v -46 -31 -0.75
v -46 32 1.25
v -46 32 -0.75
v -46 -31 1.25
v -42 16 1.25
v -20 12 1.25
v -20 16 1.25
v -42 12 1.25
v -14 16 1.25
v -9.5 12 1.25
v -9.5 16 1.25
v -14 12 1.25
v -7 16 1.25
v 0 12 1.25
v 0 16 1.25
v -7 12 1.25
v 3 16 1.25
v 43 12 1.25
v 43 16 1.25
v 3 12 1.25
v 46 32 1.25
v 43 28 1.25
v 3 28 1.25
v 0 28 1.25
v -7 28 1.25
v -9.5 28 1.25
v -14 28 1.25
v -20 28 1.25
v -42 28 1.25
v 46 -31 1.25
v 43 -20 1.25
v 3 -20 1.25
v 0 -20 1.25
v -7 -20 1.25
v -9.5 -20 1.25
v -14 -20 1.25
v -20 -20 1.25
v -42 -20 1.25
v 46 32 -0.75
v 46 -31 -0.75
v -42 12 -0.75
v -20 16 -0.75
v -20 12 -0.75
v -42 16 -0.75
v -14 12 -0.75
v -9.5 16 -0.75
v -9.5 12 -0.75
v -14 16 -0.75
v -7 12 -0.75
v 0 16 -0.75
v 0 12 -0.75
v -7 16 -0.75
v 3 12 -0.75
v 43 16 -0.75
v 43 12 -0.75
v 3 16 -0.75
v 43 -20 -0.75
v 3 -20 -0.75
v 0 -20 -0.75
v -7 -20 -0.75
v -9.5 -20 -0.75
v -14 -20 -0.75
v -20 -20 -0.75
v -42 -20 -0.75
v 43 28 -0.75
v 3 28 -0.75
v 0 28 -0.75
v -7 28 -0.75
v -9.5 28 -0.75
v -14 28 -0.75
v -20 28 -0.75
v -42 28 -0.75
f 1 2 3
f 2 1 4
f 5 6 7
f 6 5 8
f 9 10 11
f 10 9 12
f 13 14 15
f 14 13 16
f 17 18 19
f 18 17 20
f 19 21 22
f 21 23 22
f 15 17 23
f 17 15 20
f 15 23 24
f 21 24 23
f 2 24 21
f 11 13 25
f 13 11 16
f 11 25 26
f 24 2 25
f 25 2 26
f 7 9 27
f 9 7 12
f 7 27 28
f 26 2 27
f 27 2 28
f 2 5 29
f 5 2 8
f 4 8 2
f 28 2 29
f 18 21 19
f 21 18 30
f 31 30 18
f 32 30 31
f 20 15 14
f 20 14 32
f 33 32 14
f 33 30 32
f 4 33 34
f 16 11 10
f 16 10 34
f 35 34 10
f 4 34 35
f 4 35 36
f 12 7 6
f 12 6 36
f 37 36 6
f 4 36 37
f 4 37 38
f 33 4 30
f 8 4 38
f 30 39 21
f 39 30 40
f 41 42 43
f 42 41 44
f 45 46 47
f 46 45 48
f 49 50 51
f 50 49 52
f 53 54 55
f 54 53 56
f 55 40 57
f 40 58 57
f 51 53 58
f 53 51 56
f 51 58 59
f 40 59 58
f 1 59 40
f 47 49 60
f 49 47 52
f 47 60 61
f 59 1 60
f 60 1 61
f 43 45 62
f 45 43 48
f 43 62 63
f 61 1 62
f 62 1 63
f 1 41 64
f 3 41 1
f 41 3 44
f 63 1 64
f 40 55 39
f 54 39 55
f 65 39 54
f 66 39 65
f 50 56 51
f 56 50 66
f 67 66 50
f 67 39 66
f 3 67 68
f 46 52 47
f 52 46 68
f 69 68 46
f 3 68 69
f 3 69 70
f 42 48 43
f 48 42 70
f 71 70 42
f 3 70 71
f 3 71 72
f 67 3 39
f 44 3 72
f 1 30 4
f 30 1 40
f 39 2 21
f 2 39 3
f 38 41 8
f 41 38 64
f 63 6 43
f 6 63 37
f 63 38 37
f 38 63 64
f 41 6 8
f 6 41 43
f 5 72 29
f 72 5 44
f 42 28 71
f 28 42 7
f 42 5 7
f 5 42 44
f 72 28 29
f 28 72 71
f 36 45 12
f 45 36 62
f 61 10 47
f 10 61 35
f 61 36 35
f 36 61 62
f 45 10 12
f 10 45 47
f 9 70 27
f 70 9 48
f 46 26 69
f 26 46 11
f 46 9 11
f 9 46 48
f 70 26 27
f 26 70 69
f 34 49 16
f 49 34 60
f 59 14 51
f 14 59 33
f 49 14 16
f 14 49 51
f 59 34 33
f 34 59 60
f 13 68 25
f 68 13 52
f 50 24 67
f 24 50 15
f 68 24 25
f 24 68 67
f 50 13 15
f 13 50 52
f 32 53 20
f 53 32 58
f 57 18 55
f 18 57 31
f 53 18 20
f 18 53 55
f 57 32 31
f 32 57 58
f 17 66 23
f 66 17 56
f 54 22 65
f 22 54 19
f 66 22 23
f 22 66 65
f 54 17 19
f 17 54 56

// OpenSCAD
high = 2;

translate([-46, -31, -0.75]) {
	difference() {
		cube([92, 63, high], center=false);

		translate([4, 11, 0]) {
			cube([22, 32, high], center=false);
		}

		translate([4, 47, 0]) {
			cube([22, 12, high], center=false);
		}

		translate([32, 11, 0]) {
			cube([4.5, 32, high], center=false);
		}

		translate([32, 47, 0]) {
			cube([4.5, 12, high], center=false);
		}

		translate([39, 11, 0]) {
			cube([7, 32, high], center=false);
		}

		translate([39, 47, 0]) {
			cube([7, 12, high], center=false);
		}

		translate([49, 11, 0]) {
			cube([40, 32, high], center=false);
		}

		translate([49, 47, 0]) {
			cube([40, 12, high], center=false);
		}
	}
}
